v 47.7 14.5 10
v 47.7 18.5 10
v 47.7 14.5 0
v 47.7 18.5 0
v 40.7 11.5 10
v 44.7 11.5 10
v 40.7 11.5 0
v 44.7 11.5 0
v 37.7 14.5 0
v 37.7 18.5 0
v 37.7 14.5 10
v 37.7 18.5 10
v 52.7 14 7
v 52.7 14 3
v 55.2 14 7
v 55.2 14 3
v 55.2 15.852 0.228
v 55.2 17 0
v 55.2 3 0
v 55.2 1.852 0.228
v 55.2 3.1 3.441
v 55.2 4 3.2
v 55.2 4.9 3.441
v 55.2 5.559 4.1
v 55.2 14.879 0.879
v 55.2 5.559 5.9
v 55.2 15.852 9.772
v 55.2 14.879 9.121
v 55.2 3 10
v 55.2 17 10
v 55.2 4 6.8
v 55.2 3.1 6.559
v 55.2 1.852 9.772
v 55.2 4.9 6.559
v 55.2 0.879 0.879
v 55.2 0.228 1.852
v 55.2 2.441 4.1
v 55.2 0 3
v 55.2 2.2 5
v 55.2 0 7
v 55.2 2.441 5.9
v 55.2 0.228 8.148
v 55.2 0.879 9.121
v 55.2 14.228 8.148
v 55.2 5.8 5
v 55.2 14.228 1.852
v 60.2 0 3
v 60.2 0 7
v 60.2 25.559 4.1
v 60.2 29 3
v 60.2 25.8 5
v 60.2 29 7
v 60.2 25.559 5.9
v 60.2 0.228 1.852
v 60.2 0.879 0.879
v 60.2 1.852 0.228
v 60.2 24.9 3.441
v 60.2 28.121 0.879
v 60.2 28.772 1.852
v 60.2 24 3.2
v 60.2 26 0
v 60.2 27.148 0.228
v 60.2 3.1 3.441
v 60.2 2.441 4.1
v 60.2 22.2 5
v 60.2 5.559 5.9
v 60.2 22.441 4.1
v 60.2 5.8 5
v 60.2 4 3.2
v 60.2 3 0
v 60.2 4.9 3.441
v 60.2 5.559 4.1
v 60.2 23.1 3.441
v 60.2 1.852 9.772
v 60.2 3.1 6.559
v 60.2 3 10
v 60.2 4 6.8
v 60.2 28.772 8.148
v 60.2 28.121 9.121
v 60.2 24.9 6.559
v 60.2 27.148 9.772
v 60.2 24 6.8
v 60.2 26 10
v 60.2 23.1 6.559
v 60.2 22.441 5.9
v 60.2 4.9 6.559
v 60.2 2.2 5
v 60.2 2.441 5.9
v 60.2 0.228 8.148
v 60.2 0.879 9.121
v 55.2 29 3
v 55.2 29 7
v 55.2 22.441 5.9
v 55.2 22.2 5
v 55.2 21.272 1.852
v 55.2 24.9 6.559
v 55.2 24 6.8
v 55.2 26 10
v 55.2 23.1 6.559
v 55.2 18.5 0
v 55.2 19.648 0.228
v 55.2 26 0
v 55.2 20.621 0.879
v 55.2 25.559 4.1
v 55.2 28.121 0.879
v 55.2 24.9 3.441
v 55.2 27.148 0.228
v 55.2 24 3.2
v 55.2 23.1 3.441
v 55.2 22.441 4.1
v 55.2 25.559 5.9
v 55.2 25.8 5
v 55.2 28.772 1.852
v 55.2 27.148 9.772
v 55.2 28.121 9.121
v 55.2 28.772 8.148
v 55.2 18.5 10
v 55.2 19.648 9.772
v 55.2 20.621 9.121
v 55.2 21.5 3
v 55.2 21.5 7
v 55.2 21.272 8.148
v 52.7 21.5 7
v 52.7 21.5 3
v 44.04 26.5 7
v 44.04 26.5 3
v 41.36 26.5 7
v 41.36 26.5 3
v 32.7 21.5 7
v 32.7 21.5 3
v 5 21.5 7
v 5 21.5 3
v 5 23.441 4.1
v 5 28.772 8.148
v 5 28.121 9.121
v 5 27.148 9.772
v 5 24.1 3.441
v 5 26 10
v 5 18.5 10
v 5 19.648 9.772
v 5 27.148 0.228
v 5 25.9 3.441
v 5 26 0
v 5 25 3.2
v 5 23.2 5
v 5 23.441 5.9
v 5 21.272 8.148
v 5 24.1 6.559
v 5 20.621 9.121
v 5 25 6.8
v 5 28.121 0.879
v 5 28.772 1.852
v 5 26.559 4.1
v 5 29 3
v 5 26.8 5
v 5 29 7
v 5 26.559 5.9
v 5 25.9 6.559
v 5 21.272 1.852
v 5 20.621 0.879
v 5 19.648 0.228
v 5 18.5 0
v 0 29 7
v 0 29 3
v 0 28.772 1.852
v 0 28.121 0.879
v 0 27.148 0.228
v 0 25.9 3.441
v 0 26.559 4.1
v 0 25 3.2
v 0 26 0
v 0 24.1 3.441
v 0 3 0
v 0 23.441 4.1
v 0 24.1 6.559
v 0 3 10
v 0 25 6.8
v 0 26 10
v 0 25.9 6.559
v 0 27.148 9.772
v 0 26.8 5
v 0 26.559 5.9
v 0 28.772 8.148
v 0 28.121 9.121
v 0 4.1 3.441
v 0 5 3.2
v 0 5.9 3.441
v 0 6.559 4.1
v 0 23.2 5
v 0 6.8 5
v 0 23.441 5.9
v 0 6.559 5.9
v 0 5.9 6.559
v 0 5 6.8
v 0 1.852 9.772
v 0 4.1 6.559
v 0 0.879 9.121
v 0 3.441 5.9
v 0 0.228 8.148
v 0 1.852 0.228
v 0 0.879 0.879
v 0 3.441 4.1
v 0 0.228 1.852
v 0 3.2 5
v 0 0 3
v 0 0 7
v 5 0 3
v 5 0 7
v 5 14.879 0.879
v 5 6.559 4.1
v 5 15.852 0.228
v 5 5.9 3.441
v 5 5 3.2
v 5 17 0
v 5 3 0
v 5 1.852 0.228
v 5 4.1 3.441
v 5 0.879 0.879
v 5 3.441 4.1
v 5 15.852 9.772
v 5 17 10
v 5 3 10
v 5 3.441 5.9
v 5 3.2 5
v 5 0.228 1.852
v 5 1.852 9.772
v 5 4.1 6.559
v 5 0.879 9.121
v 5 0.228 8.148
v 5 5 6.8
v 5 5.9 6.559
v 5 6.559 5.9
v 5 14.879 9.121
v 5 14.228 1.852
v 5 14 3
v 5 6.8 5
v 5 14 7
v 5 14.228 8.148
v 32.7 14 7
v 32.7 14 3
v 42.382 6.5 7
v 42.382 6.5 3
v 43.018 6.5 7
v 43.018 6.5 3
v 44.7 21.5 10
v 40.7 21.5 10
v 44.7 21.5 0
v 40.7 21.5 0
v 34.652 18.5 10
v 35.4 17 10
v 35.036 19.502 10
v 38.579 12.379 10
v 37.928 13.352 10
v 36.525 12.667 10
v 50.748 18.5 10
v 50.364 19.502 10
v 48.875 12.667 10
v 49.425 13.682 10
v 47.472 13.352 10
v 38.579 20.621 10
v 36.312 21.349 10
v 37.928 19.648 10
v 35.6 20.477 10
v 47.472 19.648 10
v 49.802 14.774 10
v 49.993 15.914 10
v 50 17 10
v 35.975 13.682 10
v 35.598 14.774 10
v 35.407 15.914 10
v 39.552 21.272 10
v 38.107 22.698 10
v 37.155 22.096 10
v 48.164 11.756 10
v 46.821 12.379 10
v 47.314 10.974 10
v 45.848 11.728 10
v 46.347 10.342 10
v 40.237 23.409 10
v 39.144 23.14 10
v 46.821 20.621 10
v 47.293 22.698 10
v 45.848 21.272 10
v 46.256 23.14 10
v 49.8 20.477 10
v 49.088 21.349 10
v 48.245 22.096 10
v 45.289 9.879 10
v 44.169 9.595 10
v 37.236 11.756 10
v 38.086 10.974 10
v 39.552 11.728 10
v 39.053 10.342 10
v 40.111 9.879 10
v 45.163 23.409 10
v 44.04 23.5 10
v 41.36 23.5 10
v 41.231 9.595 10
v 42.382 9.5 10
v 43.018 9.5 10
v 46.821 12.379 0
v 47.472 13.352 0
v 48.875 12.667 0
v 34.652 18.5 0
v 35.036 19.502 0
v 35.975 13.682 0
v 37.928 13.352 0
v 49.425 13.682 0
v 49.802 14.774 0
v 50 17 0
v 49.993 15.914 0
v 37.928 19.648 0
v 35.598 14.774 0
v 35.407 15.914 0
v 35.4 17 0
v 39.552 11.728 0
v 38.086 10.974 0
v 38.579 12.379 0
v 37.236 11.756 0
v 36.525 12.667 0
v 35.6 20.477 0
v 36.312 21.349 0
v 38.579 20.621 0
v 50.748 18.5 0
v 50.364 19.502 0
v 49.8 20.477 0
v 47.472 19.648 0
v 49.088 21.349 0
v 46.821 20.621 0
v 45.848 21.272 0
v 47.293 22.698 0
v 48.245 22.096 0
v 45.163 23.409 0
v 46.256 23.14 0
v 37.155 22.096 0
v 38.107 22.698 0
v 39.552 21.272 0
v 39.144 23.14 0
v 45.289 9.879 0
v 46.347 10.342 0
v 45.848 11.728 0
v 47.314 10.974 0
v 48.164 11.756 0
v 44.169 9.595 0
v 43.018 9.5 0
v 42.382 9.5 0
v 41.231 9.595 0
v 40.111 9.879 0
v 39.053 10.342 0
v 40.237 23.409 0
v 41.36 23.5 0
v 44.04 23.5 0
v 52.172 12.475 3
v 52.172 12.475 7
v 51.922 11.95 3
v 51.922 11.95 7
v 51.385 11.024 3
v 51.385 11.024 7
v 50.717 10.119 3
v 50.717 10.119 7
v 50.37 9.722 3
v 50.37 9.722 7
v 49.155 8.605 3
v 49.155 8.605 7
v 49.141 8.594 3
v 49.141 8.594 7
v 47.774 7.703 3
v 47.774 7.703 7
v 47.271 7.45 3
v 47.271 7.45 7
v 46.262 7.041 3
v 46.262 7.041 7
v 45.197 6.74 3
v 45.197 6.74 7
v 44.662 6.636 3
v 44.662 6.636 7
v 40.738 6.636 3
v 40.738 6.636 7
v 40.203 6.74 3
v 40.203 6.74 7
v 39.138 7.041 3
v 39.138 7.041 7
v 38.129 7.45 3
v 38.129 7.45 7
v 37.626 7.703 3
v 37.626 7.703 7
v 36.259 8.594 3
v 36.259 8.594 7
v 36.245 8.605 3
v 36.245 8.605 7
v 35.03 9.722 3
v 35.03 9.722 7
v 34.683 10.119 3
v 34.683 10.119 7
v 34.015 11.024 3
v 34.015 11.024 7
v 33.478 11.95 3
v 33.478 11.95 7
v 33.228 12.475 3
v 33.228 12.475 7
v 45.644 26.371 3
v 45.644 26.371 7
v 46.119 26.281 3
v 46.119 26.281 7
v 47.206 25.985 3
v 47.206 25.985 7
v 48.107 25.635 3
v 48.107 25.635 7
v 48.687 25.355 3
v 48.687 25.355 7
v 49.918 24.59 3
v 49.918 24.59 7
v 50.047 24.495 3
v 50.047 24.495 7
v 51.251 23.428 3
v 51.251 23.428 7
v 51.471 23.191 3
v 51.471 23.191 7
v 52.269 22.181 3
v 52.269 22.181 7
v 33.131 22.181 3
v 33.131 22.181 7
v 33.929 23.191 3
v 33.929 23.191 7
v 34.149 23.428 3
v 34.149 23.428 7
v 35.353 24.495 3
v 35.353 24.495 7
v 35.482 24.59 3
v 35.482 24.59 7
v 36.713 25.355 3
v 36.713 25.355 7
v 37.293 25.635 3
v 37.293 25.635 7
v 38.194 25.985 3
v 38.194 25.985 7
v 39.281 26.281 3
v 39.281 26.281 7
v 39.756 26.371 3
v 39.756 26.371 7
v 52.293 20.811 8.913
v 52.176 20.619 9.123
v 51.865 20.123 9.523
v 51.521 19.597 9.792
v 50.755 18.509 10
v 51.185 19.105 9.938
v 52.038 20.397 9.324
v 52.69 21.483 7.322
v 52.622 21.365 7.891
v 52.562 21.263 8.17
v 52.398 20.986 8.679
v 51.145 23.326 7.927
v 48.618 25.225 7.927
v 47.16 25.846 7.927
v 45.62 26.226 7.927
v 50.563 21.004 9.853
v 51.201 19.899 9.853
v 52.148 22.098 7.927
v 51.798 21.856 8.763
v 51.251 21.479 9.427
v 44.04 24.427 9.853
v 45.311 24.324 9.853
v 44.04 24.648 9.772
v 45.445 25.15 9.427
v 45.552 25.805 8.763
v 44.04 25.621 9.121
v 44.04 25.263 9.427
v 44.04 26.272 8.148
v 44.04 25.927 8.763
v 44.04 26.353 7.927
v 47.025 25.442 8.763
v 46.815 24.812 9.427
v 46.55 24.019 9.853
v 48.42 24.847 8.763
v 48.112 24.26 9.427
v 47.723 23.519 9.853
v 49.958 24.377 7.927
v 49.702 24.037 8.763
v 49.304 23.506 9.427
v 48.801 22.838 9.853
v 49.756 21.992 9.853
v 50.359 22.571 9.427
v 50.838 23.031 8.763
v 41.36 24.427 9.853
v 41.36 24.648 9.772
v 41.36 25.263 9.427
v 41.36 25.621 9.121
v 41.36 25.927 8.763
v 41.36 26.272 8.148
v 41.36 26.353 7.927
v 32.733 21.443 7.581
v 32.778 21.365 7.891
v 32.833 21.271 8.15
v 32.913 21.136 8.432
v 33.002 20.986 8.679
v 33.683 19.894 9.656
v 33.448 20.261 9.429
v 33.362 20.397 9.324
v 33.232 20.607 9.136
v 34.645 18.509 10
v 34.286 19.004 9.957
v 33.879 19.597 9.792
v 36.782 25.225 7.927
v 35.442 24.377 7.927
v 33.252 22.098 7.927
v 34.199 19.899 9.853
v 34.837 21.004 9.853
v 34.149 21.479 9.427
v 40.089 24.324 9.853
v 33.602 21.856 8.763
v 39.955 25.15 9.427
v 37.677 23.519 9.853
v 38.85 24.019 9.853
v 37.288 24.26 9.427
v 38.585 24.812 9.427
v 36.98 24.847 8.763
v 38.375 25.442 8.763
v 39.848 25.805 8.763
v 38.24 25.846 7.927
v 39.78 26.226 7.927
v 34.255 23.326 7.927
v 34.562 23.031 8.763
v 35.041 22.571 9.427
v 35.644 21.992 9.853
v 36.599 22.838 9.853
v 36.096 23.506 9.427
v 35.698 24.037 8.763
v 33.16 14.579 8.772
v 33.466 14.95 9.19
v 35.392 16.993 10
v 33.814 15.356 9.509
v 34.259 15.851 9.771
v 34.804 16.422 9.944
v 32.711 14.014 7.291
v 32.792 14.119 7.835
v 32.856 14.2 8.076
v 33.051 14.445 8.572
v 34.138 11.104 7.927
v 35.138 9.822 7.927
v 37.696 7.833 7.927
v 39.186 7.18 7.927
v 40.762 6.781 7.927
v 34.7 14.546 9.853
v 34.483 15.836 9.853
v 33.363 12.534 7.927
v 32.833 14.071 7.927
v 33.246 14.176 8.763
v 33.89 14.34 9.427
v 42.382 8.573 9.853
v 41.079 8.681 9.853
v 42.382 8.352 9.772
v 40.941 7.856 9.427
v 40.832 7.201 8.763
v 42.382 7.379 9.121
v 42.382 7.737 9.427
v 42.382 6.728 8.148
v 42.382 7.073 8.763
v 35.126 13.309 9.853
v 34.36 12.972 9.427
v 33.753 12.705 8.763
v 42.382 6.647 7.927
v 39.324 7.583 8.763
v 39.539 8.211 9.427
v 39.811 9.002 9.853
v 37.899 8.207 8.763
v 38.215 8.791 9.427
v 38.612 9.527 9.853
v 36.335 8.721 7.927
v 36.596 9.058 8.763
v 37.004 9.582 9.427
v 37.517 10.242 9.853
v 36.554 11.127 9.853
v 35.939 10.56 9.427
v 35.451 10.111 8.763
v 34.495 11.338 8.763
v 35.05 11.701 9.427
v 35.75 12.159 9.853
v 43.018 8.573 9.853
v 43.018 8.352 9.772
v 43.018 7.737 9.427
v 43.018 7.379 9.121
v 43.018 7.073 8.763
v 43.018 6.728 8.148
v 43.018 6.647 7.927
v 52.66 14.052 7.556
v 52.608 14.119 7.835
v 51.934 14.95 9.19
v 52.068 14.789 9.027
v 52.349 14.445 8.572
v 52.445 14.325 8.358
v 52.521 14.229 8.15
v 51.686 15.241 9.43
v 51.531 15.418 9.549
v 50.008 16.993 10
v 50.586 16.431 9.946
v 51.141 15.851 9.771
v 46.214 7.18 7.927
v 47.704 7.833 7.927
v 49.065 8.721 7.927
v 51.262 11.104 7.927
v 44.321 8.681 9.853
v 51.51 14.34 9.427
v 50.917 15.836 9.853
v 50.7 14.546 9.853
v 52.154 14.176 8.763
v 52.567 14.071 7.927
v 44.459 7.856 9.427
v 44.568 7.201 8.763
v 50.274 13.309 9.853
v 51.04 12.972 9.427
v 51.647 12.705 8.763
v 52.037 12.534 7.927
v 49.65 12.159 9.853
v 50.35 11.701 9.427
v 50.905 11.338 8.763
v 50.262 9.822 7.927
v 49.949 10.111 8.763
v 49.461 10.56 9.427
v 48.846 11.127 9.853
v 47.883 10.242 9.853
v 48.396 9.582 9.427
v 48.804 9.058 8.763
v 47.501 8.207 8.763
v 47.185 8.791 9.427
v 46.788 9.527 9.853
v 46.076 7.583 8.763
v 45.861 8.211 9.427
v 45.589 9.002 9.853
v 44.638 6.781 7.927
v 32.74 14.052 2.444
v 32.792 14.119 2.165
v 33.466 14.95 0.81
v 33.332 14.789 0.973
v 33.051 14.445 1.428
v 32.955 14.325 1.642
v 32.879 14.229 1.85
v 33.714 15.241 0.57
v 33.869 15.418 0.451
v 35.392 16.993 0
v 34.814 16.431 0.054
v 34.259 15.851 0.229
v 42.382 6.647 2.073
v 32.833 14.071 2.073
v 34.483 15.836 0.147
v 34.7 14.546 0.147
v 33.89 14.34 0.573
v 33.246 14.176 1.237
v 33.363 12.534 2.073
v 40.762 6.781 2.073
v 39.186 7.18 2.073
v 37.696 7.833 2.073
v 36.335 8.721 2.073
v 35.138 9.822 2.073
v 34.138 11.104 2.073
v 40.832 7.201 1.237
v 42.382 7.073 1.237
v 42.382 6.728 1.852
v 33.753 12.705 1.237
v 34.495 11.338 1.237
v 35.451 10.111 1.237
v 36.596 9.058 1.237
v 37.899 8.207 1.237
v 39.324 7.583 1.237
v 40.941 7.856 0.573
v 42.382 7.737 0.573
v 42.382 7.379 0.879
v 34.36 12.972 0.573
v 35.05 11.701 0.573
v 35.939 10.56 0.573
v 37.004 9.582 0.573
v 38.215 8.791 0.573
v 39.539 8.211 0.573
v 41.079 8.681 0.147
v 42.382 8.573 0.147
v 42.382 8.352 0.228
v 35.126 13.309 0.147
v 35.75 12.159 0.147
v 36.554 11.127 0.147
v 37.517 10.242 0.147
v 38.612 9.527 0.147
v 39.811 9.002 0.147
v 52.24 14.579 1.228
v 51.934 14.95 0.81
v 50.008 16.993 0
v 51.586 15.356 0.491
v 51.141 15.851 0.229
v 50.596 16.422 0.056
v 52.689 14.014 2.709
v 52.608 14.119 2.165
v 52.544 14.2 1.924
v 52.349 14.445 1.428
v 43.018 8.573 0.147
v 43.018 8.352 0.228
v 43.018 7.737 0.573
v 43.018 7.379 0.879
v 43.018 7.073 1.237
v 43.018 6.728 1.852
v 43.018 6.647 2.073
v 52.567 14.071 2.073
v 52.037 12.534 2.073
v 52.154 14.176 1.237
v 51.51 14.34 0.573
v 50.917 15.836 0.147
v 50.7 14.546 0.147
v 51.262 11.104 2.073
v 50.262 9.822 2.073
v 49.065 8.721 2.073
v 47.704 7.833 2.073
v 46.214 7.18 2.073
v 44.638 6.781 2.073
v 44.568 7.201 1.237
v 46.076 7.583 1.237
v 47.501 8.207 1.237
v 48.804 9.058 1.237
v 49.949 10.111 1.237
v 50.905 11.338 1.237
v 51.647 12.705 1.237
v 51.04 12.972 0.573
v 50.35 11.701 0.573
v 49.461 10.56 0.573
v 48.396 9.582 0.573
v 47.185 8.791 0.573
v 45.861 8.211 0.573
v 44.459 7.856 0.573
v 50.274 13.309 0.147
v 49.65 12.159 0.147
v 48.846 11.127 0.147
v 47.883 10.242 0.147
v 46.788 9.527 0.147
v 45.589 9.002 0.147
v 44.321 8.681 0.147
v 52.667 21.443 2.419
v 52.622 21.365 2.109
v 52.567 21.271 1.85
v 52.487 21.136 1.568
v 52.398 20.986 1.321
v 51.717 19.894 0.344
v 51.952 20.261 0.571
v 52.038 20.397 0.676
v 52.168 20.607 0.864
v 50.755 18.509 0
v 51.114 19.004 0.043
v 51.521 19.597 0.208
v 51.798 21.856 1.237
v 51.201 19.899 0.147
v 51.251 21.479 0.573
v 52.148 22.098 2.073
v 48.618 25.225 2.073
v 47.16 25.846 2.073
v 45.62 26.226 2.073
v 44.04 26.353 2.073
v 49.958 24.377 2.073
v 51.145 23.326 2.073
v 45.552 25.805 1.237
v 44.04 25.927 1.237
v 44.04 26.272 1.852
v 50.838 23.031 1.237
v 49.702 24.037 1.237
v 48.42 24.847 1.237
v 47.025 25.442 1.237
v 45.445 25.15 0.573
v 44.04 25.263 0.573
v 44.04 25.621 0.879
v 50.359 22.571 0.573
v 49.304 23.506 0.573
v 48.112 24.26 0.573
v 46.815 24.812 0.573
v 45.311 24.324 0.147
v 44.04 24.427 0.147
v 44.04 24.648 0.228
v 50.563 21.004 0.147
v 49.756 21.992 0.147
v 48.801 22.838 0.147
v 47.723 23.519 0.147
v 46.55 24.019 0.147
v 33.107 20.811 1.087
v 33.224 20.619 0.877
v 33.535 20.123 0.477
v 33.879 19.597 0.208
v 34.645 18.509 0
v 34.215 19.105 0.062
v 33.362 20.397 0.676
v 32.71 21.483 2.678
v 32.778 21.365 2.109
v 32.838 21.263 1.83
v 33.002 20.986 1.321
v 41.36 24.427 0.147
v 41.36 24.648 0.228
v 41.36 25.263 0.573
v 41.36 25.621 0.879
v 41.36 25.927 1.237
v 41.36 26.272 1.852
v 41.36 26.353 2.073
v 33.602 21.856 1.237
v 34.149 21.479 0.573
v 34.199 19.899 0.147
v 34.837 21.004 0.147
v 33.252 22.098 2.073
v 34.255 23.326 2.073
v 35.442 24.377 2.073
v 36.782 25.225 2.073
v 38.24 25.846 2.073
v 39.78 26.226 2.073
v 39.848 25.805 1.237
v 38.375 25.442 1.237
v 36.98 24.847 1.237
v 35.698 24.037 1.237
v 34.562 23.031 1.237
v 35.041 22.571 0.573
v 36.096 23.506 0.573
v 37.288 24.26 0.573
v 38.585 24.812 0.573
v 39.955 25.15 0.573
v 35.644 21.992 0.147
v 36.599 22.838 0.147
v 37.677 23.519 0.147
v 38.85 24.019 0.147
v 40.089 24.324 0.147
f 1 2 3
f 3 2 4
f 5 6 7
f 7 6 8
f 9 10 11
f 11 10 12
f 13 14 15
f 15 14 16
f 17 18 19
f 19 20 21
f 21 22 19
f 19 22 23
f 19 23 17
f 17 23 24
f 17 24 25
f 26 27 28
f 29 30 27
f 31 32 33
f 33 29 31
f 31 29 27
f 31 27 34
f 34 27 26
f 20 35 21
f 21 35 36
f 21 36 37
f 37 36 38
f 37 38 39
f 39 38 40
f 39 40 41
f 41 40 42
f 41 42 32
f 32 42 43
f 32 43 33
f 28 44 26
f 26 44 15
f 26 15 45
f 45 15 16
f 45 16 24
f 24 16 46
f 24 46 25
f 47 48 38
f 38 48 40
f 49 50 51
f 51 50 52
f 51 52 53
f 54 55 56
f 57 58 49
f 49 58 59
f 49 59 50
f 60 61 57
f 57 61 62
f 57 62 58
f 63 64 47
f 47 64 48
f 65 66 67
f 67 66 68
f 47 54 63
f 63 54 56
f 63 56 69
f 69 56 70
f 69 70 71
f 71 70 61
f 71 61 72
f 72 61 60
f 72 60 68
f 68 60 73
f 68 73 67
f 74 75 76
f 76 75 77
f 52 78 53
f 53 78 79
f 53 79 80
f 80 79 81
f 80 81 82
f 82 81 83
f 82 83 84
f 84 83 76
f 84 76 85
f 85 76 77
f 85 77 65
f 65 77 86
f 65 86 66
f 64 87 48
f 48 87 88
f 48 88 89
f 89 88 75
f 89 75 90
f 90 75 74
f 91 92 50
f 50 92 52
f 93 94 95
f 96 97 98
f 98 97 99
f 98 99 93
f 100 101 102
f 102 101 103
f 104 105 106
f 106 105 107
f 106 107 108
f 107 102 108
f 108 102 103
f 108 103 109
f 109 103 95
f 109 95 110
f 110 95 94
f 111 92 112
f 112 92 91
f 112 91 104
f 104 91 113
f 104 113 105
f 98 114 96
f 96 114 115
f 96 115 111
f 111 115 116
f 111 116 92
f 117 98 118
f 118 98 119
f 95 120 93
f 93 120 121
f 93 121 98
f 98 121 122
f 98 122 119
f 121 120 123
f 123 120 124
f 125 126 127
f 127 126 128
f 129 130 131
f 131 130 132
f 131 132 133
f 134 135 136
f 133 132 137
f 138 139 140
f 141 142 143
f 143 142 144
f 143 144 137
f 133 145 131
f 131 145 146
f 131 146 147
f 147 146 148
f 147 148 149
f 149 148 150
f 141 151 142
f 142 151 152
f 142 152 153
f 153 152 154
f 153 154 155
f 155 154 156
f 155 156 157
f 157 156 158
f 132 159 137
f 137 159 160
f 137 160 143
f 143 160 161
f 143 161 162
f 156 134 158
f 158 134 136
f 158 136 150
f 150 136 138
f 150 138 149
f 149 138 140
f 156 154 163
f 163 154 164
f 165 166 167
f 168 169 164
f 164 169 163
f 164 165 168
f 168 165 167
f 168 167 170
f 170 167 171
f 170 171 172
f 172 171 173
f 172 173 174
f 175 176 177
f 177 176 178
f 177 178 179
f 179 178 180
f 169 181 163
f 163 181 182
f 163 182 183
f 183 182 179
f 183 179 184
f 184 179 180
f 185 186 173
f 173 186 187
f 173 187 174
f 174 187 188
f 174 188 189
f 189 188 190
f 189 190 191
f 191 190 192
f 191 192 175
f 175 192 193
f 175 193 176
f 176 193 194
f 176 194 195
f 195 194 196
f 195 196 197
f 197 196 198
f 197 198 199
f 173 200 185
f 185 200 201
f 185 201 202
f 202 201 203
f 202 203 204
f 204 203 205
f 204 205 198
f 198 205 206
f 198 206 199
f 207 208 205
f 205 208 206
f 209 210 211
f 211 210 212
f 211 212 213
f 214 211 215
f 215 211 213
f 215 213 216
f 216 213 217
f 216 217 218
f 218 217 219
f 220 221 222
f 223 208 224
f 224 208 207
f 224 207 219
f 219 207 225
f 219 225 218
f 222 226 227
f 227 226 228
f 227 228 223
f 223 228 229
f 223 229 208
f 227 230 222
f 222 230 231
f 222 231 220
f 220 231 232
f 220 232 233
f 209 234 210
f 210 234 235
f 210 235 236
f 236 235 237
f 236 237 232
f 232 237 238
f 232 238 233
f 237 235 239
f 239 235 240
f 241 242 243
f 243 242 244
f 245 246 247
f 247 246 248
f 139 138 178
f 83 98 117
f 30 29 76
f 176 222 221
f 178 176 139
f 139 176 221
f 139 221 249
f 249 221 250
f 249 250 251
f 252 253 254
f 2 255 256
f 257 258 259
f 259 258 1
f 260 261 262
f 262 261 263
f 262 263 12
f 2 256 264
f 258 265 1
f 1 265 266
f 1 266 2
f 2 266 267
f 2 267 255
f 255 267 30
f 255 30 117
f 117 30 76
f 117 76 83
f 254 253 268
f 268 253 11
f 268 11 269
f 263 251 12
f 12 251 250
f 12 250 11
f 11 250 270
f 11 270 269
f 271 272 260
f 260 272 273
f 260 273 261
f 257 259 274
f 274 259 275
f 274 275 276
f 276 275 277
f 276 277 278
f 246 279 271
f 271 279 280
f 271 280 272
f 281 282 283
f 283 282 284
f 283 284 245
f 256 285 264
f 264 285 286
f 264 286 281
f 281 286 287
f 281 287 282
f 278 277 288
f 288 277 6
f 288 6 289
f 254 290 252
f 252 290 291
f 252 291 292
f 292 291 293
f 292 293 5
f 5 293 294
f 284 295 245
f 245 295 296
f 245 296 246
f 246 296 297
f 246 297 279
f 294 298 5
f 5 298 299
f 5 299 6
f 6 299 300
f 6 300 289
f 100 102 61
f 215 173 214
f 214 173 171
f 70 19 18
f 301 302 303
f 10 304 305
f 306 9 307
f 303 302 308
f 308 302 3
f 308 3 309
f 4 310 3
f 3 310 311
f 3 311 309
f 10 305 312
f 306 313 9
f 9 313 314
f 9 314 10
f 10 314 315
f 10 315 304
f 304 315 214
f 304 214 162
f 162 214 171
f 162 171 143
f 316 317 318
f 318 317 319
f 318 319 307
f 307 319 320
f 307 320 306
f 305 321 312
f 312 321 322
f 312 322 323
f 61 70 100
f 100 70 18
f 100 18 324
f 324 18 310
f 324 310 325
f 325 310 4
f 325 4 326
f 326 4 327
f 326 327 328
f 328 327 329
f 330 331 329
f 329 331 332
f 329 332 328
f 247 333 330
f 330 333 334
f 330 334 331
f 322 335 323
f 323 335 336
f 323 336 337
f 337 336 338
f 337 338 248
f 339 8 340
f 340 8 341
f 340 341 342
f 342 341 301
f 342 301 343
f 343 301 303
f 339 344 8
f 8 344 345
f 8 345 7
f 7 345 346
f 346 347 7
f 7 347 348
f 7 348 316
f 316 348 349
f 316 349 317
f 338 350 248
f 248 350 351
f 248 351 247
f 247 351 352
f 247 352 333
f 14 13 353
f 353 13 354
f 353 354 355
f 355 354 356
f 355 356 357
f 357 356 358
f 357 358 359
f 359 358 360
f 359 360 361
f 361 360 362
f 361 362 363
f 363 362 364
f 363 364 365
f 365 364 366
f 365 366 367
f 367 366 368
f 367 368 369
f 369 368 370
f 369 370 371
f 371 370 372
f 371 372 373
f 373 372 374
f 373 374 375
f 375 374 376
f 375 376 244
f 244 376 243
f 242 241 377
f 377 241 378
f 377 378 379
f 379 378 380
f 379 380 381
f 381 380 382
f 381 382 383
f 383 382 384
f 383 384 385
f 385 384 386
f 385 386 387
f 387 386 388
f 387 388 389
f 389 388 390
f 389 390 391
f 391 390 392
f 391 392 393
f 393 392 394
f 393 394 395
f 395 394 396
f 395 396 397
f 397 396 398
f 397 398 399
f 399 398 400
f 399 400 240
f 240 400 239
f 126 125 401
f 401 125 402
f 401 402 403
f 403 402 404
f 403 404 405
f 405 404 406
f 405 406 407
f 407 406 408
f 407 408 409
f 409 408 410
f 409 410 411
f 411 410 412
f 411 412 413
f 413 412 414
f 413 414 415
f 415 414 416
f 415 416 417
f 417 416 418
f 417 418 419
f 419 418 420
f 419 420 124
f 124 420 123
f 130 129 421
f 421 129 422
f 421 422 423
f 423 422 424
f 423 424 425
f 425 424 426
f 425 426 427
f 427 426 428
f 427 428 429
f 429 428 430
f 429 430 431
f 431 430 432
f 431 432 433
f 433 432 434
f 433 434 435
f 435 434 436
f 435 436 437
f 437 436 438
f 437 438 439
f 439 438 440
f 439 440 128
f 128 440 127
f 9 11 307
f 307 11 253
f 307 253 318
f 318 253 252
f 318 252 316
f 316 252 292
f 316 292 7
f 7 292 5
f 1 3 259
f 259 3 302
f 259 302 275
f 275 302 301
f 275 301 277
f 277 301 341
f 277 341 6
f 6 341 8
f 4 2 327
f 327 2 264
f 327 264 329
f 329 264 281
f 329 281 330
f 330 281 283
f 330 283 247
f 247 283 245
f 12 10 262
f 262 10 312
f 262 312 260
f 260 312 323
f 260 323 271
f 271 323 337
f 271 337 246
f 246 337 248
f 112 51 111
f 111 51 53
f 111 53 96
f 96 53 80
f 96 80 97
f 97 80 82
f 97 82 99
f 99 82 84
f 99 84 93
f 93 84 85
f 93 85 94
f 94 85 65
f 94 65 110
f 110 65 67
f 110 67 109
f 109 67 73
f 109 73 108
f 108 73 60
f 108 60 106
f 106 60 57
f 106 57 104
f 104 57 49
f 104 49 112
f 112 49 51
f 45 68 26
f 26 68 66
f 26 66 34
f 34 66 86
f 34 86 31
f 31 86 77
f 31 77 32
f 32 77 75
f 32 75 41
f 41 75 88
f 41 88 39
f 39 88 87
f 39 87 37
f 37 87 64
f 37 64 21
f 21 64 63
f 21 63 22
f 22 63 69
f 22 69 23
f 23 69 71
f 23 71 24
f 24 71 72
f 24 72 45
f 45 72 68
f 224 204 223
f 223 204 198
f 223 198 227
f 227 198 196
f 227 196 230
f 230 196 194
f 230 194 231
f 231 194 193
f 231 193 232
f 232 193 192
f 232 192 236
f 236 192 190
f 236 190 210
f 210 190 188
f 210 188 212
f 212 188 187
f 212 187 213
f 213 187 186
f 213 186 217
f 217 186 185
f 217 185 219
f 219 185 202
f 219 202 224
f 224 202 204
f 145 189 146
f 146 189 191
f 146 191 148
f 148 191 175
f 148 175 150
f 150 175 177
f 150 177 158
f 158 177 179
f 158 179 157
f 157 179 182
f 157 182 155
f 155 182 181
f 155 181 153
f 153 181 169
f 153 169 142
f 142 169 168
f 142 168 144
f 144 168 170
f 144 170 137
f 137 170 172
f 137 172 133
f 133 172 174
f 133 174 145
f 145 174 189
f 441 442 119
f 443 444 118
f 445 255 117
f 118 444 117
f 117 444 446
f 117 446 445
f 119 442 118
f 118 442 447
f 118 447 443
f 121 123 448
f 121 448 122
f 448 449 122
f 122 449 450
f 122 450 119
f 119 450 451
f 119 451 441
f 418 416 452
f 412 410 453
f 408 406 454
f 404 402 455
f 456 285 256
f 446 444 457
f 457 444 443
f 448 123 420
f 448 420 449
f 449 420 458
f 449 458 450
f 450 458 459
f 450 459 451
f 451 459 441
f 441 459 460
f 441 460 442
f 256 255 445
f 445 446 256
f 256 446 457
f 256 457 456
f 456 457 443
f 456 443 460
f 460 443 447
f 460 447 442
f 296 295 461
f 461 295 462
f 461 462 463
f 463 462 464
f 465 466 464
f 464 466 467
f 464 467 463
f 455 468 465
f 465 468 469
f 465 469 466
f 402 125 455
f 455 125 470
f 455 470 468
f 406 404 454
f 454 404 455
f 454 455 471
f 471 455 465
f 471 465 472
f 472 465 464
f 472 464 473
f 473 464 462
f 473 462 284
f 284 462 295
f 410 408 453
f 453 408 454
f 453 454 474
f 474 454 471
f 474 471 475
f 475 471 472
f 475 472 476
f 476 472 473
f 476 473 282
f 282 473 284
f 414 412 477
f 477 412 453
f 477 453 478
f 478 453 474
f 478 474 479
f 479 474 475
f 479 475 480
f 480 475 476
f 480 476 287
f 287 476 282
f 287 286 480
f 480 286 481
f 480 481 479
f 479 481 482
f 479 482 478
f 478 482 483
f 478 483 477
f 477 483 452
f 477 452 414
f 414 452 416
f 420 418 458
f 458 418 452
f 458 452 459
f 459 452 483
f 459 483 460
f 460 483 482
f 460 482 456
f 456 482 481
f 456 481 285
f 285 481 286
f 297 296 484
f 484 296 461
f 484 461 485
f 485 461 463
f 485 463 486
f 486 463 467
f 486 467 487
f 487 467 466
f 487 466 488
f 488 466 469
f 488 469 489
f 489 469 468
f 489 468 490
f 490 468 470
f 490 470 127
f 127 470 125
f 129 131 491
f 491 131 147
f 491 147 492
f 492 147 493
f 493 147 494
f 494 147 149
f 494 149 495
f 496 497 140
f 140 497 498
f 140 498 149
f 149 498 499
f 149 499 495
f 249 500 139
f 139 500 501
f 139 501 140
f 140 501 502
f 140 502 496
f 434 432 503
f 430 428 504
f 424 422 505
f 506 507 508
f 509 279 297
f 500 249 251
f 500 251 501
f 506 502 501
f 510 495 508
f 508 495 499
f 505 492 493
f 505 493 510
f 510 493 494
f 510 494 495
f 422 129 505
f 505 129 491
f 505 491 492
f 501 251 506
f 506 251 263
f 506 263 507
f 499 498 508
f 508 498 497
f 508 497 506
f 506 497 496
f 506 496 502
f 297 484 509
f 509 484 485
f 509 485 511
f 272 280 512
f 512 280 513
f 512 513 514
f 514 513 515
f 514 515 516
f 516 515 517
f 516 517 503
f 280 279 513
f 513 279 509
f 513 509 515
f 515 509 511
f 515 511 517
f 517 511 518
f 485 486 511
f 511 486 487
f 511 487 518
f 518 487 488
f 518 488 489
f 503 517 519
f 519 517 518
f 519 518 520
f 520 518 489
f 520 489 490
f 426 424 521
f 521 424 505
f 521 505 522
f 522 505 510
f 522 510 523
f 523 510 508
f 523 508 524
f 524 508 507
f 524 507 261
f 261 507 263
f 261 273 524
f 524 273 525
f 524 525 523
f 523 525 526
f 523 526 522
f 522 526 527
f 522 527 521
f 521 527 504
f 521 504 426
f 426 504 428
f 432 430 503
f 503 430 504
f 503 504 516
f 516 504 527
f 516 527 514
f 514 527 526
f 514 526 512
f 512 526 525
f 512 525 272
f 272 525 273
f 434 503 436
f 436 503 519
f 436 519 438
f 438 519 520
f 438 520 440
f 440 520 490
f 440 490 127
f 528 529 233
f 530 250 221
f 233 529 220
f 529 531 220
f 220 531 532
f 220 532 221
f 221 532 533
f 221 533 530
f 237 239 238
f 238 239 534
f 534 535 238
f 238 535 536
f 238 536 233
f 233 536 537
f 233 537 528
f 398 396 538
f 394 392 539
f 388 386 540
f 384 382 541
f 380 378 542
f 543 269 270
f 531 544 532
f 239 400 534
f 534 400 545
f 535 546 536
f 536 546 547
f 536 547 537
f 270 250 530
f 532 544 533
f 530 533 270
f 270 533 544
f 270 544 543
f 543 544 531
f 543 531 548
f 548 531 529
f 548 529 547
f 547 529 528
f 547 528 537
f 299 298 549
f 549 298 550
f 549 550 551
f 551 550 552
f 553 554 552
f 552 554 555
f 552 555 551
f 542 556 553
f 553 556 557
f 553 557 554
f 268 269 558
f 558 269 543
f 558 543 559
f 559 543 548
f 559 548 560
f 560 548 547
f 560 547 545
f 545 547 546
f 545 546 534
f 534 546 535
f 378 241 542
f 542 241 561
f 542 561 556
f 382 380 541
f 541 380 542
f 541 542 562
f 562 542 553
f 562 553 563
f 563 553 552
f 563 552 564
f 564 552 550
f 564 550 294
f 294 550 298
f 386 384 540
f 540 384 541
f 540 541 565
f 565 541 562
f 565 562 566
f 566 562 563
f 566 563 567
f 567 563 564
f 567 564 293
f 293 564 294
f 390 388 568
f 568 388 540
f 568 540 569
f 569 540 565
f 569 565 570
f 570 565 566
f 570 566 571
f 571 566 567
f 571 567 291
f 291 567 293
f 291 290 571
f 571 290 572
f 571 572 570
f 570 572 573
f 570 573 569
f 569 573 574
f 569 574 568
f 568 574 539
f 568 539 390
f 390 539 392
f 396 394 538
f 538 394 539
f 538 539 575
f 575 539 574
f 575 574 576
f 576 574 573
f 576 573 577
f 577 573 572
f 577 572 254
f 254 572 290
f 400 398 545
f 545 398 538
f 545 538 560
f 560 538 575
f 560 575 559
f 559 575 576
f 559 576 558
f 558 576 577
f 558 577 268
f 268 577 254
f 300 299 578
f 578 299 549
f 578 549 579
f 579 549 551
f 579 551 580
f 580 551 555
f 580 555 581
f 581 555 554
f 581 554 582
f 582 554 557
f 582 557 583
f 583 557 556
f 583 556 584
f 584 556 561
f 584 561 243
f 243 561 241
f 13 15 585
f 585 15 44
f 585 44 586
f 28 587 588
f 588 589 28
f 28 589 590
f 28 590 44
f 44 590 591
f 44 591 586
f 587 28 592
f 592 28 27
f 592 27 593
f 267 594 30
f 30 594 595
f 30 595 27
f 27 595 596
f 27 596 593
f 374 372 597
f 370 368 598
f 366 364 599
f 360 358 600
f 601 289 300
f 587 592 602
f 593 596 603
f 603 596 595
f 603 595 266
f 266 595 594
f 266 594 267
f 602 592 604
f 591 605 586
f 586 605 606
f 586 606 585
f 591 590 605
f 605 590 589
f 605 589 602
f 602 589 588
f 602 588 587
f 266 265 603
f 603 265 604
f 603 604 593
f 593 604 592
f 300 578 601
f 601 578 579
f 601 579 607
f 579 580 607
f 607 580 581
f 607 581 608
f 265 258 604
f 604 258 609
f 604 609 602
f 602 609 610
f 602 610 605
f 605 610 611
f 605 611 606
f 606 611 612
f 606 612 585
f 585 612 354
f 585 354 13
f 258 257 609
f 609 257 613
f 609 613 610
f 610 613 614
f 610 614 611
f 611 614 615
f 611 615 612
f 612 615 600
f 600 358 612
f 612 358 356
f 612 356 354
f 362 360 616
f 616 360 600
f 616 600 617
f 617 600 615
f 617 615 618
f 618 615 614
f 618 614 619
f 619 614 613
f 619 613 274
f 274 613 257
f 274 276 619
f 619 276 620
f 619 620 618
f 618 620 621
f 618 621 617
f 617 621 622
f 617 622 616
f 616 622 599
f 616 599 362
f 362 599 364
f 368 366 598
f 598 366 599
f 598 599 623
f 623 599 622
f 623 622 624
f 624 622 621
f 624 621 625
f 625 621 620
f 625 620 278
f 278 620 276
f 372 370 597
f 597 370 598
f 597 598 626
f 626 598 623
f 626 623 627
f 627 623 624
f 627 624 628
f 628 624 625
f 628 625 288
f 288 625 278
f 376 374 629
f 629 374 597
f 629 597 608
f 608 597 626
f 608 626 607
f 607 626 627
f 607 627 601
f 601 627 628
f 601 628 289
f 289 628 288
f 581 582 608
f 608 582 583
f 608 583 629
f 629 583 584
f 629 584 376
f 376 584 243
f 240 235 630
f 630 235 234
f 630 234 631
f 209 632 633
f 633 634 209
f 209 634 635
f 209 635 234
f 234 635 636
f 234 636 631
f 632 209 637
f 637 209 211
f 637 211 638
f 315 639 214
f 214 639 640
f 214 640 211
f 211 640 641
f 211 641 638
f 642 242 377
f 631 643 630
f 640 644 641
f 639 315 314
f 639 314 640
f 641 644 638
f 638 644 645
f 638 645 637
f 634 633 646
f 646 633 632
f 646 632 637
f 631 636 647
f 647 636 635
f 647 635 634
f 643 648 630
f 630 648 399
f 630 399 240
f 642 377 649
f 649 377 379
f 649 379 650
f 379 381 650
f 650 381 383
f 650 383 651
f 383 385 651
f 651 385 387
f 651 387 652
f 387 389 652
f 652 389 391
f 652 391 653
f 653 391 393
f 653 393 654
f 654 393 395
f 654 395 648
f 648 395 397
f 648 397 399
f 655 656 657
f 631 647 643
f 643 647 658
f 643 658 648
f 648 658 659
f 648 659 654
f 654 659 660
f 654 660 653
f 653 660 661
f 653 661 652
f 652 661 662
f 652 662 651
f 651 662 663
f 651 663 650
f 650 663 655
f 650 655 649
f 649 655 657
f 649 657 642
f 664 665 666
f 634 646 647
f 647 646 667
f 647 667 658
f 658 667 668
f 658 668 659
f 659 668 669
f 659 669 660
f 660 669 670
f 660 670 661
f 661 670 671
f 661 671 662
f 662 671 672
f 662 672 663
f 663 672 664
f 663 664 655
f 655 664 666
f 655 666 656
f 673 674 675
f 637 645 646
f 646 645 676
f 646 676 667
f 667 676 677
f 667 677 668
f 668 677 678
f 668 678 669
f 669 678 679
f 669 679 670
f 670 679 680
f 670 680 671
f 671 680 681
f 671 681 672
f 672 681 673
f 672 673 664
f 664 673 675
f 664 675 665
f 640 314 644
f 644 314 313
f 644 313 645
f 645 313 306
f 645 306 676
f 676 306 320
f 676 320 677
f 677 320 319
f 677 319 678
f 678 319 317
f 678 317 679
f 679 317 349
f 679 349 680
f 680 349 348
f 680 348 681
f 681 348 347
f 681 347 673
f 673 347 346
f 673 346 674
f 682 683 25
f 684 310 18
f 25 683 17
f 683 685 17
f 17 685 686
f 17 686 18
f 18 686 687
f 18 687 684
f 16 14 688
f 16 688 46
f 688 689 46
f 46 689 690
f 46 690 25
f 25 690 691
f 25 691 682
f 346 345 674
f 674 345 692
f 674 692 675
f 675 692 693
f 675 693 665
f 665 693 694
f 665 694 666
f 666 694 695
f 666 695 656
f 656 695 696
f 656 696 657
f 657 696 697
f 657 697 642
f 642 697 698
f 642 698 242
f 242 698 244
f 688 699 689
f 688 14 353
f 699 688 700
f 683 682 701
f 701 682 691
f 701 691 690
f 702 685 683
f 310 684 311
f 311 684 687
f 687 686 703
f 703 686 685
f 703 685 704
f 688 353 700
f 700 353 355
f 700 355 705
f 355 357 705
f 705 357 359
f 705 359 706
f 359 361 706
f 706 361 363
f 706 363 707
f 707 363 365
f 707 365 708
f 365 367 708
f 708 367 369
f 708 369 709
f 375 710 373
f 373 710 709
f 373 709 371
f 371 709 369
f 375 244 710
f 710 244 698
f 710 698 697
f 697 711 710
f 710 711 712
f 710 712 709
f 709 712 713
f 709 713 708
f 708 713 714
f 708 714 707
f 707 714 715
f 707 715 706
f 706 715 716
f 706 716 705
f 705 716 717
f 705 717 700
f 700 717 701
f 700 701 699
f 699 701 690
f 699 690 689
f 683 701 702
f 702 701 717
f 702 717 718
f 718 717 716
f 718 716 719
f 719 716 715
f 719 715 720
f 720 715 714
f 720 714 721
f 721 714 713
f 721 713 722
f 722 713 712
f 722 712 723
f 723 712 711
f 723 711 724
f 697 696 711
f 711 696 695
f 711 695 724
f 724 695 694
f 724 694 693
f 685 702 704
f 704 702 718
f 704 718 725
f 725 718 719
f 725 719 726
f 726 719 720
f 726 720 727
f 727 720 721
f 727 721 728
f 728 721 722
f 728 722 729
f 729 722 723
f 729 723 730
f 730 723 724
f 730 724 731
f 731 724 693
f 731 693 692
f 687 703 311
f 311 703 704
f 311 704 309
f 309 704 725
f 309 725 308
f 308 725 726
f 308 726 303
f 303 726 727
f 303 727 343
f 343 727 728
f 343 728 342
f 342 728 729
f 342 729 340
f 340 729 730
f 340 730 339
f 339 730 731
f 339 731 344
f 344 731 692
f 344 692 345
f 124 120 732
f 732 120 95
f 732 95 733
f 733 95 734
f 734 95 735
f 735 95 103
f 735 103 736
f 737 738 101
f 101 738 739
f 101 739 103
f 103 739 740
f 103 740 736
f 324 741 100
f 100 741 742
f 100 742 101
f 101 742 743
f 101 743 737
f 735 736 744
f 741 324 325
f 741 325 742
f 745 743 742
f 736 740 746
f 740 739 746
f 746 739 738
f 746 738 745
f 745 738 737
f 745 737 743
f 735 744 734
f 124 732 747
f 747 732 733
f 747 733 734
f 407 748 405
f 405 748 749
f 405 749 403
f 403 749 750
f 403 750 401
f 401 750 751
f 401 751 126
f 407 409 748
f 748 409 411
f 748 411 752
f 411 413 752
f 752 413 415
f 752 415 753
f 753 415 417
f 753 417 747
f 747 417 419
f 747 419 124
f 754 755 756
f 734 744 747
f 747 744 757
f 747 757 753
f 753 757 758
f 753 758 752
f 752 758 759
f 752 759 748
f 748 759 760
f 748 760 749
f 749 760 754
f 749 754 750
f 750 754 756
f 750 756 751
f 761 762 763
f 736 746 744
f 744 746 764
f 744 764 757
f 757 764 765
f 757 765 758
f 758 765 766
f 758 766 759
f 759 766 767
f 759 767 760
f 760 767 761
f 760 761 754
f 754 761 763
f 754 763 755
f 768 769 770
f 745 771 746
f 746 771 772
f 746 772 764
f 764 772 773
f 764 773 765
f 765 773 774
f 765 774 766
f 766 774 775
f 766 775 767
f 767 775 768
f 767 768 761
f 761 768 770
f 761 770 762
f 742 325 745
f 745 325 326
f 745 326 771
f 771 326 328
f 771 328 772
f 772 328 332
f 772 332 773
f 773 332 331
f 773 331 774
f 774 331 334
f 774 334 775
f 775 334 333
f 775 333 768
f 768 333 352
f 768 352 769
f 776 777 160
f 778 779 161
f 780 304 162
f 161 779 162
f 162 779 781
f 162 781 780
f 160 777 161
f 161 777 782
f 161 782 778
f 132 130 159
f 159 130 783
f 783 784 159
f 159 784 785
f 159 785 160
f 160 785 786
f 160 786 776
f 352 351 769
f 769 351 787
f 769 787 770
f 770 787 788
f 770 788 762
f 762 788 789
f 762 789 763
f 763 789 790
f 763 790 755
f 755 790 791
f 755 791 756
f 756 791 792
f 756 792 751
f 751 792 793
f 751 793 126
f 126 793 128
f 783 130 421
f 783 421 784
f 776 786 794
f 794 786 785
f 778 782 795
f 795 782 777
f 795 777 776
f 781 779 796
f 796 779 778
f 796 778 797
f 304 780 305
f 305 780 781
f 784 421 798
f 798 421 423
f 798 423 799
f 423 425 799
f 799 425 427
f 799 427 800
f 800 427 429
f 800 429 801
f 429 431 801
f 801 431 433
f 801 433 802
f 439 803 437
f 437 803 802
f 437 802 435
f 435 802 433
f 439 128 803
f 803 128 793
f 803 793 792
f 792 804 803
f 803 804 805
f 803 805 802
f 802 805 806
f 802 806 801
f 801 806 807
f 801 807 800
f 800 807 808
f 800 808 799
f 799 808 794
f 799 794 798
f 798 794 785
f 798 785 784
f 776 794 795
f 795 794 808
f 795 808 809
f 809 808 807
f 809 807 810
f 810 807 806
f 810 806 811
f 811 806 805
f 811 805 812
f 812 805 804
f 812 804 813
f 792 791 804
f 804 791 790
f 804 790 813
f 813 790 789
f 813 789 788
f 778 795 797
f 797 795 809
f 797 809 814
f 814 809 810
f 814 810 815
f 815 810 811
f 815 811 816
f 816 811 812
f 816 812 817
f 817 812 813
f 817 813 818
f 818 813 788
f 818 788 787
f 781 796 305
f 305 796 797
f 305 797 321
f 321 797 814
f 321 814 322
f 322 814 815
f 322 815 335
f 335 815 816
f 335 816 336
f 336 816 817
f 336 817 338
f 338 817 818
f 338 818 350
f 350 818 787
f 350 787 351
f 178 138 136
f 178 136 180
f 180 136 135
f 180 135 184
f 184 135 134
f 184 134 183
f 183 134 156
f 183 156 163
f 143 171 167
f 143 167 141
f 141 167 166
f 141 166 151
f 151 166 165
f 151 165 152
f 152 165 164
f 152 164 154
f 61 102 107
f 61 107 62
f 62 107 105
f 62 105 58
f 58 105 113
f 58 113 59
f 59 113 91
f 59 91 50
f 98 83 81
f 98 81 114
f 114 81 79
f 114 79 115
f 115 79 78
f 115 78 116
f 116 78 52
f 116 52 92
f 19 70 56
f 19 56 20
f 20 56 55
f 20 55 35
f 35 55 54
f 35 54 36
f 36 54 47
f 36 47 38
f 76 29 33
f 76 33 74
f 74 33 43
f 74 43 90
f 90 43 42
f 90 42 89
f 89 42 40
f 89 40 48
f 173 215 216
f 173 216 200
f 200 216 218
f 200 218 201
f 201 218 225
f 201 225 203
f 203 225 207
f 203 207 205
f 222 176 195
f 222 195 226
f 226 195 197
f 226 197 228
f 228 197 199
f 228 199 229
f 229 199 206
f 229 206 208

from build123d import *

# Parameters (mm, degrees)
ESQUISSE1_W             = 10
ESQUISSE1_H             = 10
BOSS_EXTRU_1_DEPTH      = 10
CONG_1_R                = 10
CONG_2_R                = 3
ESQUISSE2_R             = 1.8
ENL_V_MAT_EXTRU_1_DEPTH = 5
ESQUISSE3_R             = 1.8
ENL_V_MAT_EXTRU_2_DEPTH = 10
CONG_3_R                = 3


with BuildPart() as part:
    # Esquisse1 → Boss.-Extru.1 (new body)
    with BuildSketch(Plane.XY):
        Polygon((5, 29), (0, 29), (0, 0), (5, 0), (5, 14), (32.7, 14), (32.7, 6.5), (52.7, 6.5), (52.7, 14), (55.2, 14), (55.2, 0), (60.2, 0), (60.2, 29), (55.2, 29), (55.2, 21.5), (52.7, 21.5), (52.7, 26.5), (32.7, 26.5), (32.7, 21.5), (5, 21.5), align=None)
        with Locations((42.7, 16.5)):
            Rectangle(ESQUISSE1_W, ESQUISSE1_H, mode=Mode.SUBTRACT)
    extrude(amount=BOSS_EXTRU_1_DEPTH)

    # Congé1
    # the kernel refuses this fillet: 10 mm, written as the material it takes off along each edge
    with BuildSketch(Plane(origin=(52.7, 6.5, -24.206145914), x_dir=(-1, 0, 0), z_dir=(0, 0, 1))) as cong_1_piece_1:
        with BuildLine():
            CenterArc((9.682458366, -10), CONG_1_R, 90, 75.522487814)
            Line((0, -7.5), (-0.193649167, -7.45))
            ThreePointArc((-0.193649167, -7.45), (-0.2, -3.75), (-0.2, 0))
            Line((-0.2, 0), (0, 0.2))
            Line((0, 0.2), (9.682458366, 0.2))
            Line((9.682458366, 0.2), (9.682458366, 0))
        make_face()
    extrude(amount=58.412291828, mode=Mode.SUBTRACT)
    with BuildSketch(Plane(origin=(32.7, 6.5, -24.206145914), x_dir=(0, 1, 0), z_dir=(0, 0, 1))) as cong_1_piece_2:
        with BuildLine():
            CenterArc((10, -9.682458366), CONG_1_R, 104.477512186, 75.522487814)
            Line((0, -9.682458366), (-0.2, -9.682458366))
            Line((-0.2, -9.682458366), (-0.2, 0))
            Line((-0.2, 0), (0, 0.2))
            ThreePointArc((0, 0.2), (3.75, 0.2), (7.45, 0.193649167))
            Line((7.45, 0.193649167), (7.5, 0))
        make_face()
    extrude(amount=58.412291828, mode=Mode.SUBTRACT)
    with BuildSketch(Plane(origin=(52.7, 26.5, -21.650635095), x_dir=(0, -1, 0), z_dir=(0, 0, 1))) as cong_1_piece_3:
        with BuildLine():
            CenterArc((10, -8.660254038), CONG_1_R, 120, 60)
            Line((0, -8.660254038), (-0.2, -8.660254038))
            Line((-0.2, -8.660254038), (-0.2, 0))
            Line((-0.2, 0), (0, 0.2))
            ThreePointArc((0, 0.2), (2.5, 0.2), (4.9, 0.173205081))
            Line((4.9, 0.173205081), (5, 0))
        make_face()
    extrude(amount=53.301270189, mode=Mode.SUBTRACT)
    with BuildSketch(Plane(origin=(32.7, 26.5, -21.650635095), x_dir=(1, 0, 0), z_dir=(0, 0, 1))) as cong_1_piece_4:
        with BuildLine():
            CenterArc((8.660254038, -10), CONG_1_R, 90, 60)
            Line((0, -5), (-0.173205081, -4.9))
            ThreePointArc((-0.173205081, -4.9), (-0.2, -2.5), (-0.2, 0))
            Line((-0.2, 0), (0, 0.2))
            Line((0, 0.2), (8.660254038, 0.2))
            Line((8.660254038, 0.2), (8.660254038, 0))
        make_face()
    extrude(amount=53.301270189, mode=Mode.SUBTRACT)

    # Congé2
    cong_2_edges = [part.edges().sort_by_distance(p)[0] for p in [
        (47.7, 21.5, 5),
        (37.7, 21.5, 5),
        (37.7, 11.5, 5),
        (47.7, 11.5, 5),
    ]]
    fillet(cong_2_edges, radius=CONG_2_R)

    # Esquisse2 → Enlèv. mat.-Extru.1 (cut)
    with BuildSketch(Plane(origin=(60.2, 0, 0), x_dir=(0, 0, -1), z_dir=(1, 0, 0))):
        with Locations(Location((-5, 24, 0), (0, 0, 90))):
            Circle(ESQUISSE2_R)
        with Locations(Location((-5, 4, 0), (0, 0, 90))):
            Circle(ESQUISSE2_R)
    extrude(amount=-ENL_V_MAT_EXTRU_1_DEPTH, mode=Mode.SUBTRACT)

    # Esquisse3 → Enlèv. mat.-Extru.2 (cut)
    with BuildSketch(Plane.ZY):
        with Locations(Location((5, 25, 0), (0, 0, 270))):
            Circle(ESQUISSE3_R)
        with Locations(Location((5, 5, 0), (0, 0, 270))):
            Circle(ESQUISSE3_R)
    extrude(amount=-ENL_V_MAT_EXTRU_2_DEPTH, mode=Mode.SUBTRACT)

    # Congé3
    cong_3_edges = [part.edges().sort_by_distance(p)[0] for p in [
        (53.95, 14, 10),
        (57.7, 0, 10),
        (18.85, 14, 0),
        (2.5, 0, 0),
        (2.5, 29, 0),
        (57.7, 29, 10),
        (18.85, 21.5, 0),
        (53.95, 21.5, 0),
        (57.7, 29, 0),
        (57.7, 0, 0),
        (53.95, 14, 0),
        (53.95, 21.5, 10),
        (18.85, 21.5, 10),
        (2.5, 29, 10),
        (42.7, 6.5, 0),
        (42.7, 26.5, 0),
        (36.360254038, 25.160254038, 0),
        (49.039745962, 25.160254038, 0),
        (2.5, 0, 10),
        (36.258734009, 8.59430585, 0),
        (49.141265991, 8.59430585, 0),
        (42.7, 6.5, 10),
        (42.7, 26.5, 10),
        (36.360254038, 25.160254038, 10),
        (49.039745962, 25.160254038, 10),
        (36.258734009, 8.59430585, 10),
        (18.85, 14, 10),
        (49.141265991, 8.59430585, 10),
    ]]
    fillet(cong_3_edges, radius=CONG_3_R)


solid = part.part
